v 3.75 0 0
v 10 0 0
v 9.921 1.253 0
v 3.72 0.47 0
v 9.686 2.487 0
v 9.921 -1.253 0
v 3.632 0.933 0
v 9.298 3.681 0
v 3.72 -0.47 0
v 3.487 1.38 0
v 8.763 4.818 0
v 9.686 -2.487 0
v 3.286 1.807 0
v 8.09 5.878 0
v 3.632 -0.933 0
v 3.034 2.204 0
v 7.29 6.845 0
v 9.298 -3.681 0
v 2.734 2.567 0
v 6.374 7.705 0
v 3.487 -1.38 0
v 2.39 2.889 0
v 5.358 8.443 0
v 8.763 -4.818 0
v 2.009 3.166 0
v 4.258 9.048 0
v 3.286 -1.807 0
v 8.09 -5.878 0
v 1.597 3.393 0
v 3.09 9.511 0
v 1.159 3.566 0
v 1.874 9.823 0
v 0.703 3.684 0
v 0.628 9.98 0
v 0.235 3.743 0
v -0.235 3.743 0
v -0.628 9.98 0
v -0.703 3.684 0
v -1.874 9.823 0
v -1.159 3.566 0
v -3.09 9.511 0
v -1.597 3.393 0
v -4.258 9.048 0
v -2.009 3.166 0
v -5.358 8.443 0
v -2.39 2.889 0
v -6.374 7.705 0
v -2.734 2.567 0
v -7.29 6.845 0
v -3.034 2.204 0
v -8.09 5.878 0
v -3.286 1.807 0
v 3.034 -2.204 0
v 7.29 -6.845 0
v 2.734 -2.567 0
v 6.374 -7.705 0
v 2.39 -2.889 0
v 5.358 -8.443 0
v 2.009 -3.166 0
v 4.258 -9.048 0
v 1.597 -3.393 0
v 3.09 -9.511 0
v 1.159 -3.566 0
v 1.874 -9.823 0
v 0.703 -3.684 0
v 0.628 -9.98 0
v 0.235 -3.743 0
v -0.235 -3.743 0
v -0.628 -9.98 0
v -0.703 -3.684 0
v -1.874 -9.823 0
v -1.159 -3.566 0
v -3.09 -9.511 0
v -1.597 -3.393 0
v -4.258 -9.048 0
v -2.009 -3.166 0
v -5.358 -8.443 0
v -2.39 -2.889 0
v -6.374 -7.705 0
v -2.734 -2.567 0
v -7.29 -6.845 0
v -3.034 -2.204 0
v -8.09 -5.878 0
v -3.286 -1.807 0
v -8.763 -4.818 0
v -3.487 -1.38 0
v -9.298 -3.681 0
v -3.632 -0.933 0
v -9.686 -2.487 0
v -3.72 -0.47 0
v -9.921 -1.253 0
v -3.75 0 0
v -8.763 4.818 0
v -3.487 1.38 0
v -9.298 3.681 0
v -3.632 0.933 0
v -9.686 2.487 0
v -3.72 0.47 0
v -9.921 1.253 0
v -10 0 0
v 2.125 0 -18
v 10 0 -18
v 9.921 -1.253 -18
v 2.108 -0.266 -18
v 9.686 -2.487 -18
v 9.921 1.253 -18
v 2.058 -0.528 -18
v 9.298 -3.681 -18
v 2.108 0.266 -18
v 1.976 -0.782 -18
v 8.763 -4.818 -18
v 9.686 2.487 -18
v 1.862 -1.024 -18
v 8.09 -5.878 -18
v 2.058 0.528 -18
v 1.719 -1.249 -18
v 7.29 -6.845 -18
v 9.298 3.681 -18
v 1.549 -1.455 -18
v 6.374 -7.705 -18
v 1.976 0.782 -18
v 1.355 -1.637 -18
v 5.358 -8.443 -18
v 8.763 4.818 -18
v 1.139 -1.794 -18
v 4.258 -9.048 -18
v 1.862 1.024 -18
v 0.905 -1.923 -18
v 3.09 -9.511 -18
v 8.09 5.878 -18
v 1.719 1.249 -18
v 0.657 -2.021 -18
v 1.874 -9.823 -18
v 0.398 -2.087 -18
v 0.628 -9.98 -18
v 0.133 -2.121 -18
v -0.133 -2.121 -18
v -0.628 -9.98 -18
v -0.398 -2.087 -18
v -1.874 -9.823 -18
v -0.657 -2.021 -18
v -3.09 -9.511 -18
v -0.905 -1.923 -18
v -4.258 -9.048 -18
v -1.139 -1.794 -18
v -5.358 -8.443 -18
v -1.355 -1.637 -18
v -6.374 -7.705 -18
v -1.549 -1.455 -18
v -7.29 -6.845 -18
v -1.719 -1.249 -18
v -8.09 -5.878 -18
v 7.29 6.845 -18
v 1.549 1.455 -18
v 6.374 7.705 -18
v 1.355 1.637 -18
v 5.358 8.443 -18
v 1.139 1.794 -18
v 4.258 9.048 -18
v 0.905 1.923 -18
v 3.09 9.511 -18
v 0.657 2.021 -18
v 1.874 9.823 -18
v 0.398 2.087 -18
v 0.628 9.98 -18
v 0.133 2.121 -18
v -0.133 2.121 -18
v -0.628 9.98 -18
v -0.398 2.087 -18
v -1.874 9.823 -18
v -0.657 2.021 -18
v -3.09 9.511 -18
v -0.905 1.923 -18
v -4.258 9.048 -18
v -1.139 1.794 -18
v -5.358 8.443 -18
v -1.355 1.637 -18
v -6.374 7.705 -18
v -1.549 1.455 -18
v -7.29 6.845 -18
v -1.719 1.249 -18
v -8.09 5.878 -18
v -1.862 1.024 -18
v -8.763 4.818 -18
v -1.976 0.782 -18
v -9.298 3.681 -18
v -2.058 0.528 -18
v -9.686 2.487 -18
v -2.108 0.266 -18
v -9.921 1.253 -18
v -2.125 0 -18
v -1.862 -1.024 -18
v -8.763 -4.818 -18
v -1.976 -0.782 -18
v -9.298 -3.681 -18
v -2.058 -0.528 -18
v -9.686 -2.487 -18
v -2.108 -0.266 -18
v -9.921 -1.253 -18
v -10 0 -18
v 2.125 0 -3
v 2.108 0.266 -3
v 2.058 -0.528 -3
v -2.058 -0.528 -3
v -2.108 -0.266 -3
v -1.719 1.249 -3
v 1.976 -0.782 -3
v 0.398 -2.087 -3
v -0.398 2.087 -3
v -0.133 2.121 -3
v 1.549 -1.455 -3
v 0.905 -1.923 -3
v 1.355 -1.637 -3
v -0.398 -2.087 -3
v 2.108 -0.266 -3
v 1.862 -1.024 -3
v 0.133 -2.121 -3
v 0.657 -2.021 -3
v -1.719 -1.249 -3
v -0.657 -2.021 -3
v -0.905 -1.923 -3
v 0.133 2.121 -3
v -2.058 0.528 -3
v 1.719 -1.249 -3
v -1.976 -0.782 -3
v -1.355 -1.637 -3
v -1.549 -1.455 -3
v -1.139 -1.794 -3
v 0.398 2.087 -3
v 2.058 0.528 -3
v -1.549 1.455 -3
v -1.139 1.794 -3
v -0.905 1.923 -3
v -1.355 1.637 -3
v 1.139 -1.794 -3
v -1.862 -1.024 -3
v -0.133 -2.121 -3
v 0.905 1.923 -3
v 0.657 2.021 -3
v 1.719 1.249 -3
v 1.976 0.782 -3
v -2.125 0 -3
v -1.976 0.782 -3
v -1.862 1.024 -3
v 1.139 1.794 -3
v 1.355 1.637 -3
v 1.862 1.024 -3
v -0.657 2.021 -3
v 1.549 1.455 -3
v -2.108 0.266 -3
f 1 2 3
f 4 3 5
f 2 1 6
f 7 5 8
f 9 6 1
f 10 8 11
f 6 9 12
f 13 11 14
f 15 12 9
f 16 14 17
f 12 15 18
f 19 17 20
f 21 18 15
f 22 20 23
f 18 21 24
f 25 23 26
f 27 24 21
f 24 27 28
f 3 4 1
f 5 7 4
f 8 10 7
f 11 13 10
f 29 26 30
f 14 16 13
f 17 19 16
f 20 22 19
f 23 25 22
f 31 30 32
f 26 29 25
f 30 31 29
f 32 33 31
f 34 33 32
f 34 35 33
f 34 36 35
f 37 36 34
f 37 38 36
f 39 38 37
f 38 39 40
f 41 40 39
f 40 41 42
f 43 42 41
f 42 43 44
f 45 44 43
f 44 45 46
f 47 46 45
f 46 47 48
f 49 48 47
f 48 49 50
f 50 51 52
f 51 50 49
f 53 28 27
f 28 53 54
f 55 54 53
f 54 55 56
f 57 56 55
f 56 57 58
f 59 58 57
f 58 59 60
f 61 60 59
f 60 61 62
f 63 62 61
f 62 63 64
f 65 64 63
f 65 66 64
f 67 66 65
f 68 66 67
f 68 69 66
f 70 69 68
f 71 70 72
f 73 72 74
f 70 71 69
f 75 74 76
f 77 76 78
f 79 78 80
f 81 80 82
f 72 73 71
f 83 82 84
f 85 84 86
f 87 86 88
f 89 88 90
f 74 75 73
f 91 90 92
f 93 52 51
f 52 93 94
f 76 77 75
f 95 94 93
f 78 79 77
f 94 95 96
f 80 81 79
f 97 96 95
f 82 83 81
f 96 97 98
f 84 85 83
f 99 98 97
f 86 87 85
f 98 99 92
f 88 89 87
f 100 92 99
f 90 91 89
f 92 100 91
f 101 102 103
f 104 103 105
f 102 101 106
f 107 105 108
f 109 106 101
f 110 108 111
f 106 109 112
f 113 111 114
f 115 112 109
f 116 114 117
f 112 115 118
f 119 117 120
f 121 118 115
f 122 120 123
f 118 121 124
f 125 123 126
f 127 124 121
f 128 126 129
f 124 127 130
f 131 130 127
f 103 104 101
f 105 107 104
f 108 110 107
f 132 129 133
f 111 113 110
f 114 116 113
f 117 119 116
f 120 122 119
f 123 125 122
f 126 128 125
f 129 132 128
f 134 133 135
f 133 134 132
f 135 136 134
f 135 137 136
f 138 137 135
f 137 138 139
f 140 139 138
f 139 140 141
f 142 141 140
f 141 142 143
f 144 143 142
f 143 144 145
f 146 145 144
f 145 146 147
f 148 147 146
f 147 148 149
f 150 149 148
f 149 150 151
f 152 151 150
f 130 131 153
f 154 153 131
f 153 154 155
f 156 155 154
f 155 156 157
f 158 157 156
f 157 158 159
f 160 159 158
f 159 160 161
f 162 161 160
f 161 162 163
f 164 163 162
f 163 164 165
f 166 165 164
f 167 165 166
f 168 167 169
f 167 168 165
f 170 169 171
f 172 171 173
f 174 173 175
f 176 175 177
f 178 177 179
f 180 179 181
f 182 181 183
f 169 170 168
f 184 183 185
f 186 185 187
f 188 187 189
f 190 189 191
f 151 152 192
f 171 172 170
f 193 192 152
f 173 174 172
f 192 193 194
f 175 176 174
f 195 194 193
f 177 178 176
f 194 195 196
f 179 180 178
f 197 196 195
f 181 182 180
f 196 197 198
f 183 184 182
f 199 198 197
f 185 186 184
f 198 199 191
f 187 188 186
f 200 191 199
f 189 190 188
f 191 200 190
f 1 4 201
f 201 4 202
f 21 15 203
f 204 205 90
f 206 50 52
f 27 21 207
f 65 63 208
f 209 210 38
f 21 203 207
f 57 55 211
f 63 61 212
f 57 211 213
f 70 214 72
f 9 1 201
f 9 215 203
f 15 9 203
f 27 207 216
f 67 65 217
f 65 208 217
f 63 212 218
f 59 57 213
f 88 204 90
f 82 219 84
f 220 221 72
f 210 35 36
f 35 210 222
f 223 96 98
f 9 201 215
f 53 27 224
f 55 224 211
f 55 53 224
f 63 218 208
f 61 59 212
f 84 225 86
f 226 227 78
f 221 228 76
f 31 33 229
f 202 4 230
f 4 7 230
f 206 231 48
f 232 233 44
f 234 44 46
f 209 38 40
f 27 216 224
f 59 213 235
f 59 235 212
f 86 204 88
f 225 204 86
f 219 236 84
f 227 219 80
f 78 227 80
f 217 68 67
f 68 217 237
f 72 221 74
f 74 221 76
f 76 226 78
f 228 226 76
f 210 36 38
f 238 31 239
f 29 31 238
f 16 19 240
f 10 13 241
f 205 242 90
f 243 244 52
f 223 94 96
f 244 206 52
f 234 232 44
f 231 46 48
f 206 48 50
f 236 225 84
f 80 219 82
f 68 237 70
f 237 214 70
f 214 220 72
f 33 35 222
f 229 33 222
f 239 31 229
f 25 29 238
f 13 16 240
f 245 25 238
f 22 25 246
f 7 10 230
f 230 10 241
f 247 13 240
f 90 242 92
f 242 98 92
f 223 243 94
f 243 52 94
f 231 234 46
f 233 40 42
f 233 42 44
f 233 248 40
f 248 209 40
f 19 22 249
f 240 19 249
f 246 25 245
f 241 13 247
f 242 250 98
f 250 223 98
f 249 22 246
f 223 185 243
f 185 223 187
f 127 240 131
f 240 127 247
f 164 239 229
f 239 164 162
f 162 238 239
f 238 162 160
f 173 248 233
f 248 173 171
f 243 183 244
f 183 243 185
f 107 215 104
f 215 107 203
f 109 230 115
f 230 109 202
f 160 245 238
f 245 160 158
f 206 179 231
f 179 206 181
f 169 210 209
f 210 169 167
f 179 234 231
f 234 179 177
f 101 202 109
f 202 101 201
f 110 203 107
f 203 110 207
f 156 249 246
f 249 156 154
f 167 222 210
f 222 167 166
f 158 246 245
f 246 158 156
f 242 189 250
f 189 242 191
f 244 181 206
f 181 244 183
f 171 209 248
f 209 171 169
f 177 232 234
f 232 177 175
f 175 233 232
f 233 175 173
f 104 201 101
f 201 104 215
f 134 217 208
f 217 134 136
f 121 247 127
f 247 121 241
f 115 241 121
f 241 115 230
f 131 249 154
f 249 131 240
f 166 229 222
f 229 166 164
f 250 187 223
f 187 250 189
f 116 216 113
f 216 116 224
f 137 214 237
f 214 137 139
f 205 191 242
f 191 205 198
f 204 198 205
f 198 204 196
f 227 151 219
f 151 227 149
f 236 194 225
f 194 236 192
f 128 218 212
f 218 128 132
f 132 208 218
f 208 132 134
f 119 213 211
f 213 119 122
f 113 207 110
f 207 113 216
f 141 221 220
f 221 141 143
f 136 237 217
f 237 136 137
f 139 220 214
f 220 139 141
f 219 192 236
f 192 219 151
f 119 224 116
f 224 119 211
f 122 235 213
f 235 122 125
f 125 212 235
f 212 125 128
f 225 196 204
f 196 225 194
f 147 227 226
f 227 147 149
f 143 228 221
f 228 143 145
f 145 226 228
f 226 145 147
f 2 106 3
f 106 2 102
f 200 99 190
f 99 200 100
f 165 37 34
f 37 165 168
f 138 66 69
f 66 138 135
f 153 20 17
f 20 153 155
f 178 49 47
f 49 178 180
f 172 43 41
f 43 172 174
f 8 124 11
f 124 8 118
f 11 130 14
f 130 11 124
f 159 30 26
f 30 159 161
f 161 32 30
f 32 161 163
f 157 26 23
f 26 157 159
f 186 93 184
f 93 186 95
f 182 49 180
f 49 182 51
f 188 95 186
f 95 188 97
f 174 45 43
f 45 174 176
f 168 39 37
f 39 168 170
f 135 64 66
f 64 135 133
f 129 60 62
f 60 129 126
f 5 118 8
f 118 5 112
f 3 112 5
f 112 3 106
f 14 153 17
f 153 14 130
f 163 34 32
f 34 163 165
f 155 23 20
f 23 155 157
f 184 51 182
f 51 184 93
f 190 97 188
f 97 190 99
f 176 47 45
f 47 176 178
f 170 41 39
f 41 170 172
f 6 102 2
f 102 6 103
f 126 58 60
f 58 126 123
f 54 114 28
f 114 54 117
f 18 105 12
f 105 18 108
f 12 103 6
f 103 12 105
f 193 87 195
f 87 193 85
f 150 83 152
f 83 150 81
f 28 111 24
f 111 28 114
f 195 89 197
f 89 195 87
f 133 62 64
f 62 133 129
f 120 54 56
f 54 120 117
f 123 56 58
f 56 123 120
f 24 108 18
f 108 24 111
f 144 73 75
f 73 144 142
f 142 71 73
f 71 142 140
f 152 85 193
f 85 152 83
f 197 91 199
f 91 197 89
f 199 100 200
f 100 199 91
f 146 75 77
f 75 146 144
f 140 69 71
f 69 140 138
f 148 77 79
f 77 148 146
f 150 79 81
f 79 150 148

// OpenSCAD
$fn = 50;


difference() {
	union() {
		translate(v = [0, 0, -18.0000000000]) {
			cylinder(h = 18, r = 10.0000000000);
		}
		cylinder(h = 0, r = 16.0000000000);
	}
	union() {
		translate(v = [0, 0, 0]) {
			rotate(a = [0, 0, 0]) {
				difference() {
					union() {
						#translate(v = [0, 0, -18.0000000000]) {
							cylinder(h = 18, r = 2.0000000000);
						}
						#translate(v = [0, 0, -3]) {
							cylinder(h = 3, r = 10.0000000000, r1 = 2.1250000000, r2 = 3.7500000000);
						}
						#translate(v = [0, 0, -18.0000000000]) {
							cylinder(h = 18, r = 2.1250000000);
						}
						#translate(v = [0, 0, -18.0000000000]) {
							cylinder(h = 18, r = 2.0000000000);
						}
					}
					union();
				}
			}
		}
	}
}
